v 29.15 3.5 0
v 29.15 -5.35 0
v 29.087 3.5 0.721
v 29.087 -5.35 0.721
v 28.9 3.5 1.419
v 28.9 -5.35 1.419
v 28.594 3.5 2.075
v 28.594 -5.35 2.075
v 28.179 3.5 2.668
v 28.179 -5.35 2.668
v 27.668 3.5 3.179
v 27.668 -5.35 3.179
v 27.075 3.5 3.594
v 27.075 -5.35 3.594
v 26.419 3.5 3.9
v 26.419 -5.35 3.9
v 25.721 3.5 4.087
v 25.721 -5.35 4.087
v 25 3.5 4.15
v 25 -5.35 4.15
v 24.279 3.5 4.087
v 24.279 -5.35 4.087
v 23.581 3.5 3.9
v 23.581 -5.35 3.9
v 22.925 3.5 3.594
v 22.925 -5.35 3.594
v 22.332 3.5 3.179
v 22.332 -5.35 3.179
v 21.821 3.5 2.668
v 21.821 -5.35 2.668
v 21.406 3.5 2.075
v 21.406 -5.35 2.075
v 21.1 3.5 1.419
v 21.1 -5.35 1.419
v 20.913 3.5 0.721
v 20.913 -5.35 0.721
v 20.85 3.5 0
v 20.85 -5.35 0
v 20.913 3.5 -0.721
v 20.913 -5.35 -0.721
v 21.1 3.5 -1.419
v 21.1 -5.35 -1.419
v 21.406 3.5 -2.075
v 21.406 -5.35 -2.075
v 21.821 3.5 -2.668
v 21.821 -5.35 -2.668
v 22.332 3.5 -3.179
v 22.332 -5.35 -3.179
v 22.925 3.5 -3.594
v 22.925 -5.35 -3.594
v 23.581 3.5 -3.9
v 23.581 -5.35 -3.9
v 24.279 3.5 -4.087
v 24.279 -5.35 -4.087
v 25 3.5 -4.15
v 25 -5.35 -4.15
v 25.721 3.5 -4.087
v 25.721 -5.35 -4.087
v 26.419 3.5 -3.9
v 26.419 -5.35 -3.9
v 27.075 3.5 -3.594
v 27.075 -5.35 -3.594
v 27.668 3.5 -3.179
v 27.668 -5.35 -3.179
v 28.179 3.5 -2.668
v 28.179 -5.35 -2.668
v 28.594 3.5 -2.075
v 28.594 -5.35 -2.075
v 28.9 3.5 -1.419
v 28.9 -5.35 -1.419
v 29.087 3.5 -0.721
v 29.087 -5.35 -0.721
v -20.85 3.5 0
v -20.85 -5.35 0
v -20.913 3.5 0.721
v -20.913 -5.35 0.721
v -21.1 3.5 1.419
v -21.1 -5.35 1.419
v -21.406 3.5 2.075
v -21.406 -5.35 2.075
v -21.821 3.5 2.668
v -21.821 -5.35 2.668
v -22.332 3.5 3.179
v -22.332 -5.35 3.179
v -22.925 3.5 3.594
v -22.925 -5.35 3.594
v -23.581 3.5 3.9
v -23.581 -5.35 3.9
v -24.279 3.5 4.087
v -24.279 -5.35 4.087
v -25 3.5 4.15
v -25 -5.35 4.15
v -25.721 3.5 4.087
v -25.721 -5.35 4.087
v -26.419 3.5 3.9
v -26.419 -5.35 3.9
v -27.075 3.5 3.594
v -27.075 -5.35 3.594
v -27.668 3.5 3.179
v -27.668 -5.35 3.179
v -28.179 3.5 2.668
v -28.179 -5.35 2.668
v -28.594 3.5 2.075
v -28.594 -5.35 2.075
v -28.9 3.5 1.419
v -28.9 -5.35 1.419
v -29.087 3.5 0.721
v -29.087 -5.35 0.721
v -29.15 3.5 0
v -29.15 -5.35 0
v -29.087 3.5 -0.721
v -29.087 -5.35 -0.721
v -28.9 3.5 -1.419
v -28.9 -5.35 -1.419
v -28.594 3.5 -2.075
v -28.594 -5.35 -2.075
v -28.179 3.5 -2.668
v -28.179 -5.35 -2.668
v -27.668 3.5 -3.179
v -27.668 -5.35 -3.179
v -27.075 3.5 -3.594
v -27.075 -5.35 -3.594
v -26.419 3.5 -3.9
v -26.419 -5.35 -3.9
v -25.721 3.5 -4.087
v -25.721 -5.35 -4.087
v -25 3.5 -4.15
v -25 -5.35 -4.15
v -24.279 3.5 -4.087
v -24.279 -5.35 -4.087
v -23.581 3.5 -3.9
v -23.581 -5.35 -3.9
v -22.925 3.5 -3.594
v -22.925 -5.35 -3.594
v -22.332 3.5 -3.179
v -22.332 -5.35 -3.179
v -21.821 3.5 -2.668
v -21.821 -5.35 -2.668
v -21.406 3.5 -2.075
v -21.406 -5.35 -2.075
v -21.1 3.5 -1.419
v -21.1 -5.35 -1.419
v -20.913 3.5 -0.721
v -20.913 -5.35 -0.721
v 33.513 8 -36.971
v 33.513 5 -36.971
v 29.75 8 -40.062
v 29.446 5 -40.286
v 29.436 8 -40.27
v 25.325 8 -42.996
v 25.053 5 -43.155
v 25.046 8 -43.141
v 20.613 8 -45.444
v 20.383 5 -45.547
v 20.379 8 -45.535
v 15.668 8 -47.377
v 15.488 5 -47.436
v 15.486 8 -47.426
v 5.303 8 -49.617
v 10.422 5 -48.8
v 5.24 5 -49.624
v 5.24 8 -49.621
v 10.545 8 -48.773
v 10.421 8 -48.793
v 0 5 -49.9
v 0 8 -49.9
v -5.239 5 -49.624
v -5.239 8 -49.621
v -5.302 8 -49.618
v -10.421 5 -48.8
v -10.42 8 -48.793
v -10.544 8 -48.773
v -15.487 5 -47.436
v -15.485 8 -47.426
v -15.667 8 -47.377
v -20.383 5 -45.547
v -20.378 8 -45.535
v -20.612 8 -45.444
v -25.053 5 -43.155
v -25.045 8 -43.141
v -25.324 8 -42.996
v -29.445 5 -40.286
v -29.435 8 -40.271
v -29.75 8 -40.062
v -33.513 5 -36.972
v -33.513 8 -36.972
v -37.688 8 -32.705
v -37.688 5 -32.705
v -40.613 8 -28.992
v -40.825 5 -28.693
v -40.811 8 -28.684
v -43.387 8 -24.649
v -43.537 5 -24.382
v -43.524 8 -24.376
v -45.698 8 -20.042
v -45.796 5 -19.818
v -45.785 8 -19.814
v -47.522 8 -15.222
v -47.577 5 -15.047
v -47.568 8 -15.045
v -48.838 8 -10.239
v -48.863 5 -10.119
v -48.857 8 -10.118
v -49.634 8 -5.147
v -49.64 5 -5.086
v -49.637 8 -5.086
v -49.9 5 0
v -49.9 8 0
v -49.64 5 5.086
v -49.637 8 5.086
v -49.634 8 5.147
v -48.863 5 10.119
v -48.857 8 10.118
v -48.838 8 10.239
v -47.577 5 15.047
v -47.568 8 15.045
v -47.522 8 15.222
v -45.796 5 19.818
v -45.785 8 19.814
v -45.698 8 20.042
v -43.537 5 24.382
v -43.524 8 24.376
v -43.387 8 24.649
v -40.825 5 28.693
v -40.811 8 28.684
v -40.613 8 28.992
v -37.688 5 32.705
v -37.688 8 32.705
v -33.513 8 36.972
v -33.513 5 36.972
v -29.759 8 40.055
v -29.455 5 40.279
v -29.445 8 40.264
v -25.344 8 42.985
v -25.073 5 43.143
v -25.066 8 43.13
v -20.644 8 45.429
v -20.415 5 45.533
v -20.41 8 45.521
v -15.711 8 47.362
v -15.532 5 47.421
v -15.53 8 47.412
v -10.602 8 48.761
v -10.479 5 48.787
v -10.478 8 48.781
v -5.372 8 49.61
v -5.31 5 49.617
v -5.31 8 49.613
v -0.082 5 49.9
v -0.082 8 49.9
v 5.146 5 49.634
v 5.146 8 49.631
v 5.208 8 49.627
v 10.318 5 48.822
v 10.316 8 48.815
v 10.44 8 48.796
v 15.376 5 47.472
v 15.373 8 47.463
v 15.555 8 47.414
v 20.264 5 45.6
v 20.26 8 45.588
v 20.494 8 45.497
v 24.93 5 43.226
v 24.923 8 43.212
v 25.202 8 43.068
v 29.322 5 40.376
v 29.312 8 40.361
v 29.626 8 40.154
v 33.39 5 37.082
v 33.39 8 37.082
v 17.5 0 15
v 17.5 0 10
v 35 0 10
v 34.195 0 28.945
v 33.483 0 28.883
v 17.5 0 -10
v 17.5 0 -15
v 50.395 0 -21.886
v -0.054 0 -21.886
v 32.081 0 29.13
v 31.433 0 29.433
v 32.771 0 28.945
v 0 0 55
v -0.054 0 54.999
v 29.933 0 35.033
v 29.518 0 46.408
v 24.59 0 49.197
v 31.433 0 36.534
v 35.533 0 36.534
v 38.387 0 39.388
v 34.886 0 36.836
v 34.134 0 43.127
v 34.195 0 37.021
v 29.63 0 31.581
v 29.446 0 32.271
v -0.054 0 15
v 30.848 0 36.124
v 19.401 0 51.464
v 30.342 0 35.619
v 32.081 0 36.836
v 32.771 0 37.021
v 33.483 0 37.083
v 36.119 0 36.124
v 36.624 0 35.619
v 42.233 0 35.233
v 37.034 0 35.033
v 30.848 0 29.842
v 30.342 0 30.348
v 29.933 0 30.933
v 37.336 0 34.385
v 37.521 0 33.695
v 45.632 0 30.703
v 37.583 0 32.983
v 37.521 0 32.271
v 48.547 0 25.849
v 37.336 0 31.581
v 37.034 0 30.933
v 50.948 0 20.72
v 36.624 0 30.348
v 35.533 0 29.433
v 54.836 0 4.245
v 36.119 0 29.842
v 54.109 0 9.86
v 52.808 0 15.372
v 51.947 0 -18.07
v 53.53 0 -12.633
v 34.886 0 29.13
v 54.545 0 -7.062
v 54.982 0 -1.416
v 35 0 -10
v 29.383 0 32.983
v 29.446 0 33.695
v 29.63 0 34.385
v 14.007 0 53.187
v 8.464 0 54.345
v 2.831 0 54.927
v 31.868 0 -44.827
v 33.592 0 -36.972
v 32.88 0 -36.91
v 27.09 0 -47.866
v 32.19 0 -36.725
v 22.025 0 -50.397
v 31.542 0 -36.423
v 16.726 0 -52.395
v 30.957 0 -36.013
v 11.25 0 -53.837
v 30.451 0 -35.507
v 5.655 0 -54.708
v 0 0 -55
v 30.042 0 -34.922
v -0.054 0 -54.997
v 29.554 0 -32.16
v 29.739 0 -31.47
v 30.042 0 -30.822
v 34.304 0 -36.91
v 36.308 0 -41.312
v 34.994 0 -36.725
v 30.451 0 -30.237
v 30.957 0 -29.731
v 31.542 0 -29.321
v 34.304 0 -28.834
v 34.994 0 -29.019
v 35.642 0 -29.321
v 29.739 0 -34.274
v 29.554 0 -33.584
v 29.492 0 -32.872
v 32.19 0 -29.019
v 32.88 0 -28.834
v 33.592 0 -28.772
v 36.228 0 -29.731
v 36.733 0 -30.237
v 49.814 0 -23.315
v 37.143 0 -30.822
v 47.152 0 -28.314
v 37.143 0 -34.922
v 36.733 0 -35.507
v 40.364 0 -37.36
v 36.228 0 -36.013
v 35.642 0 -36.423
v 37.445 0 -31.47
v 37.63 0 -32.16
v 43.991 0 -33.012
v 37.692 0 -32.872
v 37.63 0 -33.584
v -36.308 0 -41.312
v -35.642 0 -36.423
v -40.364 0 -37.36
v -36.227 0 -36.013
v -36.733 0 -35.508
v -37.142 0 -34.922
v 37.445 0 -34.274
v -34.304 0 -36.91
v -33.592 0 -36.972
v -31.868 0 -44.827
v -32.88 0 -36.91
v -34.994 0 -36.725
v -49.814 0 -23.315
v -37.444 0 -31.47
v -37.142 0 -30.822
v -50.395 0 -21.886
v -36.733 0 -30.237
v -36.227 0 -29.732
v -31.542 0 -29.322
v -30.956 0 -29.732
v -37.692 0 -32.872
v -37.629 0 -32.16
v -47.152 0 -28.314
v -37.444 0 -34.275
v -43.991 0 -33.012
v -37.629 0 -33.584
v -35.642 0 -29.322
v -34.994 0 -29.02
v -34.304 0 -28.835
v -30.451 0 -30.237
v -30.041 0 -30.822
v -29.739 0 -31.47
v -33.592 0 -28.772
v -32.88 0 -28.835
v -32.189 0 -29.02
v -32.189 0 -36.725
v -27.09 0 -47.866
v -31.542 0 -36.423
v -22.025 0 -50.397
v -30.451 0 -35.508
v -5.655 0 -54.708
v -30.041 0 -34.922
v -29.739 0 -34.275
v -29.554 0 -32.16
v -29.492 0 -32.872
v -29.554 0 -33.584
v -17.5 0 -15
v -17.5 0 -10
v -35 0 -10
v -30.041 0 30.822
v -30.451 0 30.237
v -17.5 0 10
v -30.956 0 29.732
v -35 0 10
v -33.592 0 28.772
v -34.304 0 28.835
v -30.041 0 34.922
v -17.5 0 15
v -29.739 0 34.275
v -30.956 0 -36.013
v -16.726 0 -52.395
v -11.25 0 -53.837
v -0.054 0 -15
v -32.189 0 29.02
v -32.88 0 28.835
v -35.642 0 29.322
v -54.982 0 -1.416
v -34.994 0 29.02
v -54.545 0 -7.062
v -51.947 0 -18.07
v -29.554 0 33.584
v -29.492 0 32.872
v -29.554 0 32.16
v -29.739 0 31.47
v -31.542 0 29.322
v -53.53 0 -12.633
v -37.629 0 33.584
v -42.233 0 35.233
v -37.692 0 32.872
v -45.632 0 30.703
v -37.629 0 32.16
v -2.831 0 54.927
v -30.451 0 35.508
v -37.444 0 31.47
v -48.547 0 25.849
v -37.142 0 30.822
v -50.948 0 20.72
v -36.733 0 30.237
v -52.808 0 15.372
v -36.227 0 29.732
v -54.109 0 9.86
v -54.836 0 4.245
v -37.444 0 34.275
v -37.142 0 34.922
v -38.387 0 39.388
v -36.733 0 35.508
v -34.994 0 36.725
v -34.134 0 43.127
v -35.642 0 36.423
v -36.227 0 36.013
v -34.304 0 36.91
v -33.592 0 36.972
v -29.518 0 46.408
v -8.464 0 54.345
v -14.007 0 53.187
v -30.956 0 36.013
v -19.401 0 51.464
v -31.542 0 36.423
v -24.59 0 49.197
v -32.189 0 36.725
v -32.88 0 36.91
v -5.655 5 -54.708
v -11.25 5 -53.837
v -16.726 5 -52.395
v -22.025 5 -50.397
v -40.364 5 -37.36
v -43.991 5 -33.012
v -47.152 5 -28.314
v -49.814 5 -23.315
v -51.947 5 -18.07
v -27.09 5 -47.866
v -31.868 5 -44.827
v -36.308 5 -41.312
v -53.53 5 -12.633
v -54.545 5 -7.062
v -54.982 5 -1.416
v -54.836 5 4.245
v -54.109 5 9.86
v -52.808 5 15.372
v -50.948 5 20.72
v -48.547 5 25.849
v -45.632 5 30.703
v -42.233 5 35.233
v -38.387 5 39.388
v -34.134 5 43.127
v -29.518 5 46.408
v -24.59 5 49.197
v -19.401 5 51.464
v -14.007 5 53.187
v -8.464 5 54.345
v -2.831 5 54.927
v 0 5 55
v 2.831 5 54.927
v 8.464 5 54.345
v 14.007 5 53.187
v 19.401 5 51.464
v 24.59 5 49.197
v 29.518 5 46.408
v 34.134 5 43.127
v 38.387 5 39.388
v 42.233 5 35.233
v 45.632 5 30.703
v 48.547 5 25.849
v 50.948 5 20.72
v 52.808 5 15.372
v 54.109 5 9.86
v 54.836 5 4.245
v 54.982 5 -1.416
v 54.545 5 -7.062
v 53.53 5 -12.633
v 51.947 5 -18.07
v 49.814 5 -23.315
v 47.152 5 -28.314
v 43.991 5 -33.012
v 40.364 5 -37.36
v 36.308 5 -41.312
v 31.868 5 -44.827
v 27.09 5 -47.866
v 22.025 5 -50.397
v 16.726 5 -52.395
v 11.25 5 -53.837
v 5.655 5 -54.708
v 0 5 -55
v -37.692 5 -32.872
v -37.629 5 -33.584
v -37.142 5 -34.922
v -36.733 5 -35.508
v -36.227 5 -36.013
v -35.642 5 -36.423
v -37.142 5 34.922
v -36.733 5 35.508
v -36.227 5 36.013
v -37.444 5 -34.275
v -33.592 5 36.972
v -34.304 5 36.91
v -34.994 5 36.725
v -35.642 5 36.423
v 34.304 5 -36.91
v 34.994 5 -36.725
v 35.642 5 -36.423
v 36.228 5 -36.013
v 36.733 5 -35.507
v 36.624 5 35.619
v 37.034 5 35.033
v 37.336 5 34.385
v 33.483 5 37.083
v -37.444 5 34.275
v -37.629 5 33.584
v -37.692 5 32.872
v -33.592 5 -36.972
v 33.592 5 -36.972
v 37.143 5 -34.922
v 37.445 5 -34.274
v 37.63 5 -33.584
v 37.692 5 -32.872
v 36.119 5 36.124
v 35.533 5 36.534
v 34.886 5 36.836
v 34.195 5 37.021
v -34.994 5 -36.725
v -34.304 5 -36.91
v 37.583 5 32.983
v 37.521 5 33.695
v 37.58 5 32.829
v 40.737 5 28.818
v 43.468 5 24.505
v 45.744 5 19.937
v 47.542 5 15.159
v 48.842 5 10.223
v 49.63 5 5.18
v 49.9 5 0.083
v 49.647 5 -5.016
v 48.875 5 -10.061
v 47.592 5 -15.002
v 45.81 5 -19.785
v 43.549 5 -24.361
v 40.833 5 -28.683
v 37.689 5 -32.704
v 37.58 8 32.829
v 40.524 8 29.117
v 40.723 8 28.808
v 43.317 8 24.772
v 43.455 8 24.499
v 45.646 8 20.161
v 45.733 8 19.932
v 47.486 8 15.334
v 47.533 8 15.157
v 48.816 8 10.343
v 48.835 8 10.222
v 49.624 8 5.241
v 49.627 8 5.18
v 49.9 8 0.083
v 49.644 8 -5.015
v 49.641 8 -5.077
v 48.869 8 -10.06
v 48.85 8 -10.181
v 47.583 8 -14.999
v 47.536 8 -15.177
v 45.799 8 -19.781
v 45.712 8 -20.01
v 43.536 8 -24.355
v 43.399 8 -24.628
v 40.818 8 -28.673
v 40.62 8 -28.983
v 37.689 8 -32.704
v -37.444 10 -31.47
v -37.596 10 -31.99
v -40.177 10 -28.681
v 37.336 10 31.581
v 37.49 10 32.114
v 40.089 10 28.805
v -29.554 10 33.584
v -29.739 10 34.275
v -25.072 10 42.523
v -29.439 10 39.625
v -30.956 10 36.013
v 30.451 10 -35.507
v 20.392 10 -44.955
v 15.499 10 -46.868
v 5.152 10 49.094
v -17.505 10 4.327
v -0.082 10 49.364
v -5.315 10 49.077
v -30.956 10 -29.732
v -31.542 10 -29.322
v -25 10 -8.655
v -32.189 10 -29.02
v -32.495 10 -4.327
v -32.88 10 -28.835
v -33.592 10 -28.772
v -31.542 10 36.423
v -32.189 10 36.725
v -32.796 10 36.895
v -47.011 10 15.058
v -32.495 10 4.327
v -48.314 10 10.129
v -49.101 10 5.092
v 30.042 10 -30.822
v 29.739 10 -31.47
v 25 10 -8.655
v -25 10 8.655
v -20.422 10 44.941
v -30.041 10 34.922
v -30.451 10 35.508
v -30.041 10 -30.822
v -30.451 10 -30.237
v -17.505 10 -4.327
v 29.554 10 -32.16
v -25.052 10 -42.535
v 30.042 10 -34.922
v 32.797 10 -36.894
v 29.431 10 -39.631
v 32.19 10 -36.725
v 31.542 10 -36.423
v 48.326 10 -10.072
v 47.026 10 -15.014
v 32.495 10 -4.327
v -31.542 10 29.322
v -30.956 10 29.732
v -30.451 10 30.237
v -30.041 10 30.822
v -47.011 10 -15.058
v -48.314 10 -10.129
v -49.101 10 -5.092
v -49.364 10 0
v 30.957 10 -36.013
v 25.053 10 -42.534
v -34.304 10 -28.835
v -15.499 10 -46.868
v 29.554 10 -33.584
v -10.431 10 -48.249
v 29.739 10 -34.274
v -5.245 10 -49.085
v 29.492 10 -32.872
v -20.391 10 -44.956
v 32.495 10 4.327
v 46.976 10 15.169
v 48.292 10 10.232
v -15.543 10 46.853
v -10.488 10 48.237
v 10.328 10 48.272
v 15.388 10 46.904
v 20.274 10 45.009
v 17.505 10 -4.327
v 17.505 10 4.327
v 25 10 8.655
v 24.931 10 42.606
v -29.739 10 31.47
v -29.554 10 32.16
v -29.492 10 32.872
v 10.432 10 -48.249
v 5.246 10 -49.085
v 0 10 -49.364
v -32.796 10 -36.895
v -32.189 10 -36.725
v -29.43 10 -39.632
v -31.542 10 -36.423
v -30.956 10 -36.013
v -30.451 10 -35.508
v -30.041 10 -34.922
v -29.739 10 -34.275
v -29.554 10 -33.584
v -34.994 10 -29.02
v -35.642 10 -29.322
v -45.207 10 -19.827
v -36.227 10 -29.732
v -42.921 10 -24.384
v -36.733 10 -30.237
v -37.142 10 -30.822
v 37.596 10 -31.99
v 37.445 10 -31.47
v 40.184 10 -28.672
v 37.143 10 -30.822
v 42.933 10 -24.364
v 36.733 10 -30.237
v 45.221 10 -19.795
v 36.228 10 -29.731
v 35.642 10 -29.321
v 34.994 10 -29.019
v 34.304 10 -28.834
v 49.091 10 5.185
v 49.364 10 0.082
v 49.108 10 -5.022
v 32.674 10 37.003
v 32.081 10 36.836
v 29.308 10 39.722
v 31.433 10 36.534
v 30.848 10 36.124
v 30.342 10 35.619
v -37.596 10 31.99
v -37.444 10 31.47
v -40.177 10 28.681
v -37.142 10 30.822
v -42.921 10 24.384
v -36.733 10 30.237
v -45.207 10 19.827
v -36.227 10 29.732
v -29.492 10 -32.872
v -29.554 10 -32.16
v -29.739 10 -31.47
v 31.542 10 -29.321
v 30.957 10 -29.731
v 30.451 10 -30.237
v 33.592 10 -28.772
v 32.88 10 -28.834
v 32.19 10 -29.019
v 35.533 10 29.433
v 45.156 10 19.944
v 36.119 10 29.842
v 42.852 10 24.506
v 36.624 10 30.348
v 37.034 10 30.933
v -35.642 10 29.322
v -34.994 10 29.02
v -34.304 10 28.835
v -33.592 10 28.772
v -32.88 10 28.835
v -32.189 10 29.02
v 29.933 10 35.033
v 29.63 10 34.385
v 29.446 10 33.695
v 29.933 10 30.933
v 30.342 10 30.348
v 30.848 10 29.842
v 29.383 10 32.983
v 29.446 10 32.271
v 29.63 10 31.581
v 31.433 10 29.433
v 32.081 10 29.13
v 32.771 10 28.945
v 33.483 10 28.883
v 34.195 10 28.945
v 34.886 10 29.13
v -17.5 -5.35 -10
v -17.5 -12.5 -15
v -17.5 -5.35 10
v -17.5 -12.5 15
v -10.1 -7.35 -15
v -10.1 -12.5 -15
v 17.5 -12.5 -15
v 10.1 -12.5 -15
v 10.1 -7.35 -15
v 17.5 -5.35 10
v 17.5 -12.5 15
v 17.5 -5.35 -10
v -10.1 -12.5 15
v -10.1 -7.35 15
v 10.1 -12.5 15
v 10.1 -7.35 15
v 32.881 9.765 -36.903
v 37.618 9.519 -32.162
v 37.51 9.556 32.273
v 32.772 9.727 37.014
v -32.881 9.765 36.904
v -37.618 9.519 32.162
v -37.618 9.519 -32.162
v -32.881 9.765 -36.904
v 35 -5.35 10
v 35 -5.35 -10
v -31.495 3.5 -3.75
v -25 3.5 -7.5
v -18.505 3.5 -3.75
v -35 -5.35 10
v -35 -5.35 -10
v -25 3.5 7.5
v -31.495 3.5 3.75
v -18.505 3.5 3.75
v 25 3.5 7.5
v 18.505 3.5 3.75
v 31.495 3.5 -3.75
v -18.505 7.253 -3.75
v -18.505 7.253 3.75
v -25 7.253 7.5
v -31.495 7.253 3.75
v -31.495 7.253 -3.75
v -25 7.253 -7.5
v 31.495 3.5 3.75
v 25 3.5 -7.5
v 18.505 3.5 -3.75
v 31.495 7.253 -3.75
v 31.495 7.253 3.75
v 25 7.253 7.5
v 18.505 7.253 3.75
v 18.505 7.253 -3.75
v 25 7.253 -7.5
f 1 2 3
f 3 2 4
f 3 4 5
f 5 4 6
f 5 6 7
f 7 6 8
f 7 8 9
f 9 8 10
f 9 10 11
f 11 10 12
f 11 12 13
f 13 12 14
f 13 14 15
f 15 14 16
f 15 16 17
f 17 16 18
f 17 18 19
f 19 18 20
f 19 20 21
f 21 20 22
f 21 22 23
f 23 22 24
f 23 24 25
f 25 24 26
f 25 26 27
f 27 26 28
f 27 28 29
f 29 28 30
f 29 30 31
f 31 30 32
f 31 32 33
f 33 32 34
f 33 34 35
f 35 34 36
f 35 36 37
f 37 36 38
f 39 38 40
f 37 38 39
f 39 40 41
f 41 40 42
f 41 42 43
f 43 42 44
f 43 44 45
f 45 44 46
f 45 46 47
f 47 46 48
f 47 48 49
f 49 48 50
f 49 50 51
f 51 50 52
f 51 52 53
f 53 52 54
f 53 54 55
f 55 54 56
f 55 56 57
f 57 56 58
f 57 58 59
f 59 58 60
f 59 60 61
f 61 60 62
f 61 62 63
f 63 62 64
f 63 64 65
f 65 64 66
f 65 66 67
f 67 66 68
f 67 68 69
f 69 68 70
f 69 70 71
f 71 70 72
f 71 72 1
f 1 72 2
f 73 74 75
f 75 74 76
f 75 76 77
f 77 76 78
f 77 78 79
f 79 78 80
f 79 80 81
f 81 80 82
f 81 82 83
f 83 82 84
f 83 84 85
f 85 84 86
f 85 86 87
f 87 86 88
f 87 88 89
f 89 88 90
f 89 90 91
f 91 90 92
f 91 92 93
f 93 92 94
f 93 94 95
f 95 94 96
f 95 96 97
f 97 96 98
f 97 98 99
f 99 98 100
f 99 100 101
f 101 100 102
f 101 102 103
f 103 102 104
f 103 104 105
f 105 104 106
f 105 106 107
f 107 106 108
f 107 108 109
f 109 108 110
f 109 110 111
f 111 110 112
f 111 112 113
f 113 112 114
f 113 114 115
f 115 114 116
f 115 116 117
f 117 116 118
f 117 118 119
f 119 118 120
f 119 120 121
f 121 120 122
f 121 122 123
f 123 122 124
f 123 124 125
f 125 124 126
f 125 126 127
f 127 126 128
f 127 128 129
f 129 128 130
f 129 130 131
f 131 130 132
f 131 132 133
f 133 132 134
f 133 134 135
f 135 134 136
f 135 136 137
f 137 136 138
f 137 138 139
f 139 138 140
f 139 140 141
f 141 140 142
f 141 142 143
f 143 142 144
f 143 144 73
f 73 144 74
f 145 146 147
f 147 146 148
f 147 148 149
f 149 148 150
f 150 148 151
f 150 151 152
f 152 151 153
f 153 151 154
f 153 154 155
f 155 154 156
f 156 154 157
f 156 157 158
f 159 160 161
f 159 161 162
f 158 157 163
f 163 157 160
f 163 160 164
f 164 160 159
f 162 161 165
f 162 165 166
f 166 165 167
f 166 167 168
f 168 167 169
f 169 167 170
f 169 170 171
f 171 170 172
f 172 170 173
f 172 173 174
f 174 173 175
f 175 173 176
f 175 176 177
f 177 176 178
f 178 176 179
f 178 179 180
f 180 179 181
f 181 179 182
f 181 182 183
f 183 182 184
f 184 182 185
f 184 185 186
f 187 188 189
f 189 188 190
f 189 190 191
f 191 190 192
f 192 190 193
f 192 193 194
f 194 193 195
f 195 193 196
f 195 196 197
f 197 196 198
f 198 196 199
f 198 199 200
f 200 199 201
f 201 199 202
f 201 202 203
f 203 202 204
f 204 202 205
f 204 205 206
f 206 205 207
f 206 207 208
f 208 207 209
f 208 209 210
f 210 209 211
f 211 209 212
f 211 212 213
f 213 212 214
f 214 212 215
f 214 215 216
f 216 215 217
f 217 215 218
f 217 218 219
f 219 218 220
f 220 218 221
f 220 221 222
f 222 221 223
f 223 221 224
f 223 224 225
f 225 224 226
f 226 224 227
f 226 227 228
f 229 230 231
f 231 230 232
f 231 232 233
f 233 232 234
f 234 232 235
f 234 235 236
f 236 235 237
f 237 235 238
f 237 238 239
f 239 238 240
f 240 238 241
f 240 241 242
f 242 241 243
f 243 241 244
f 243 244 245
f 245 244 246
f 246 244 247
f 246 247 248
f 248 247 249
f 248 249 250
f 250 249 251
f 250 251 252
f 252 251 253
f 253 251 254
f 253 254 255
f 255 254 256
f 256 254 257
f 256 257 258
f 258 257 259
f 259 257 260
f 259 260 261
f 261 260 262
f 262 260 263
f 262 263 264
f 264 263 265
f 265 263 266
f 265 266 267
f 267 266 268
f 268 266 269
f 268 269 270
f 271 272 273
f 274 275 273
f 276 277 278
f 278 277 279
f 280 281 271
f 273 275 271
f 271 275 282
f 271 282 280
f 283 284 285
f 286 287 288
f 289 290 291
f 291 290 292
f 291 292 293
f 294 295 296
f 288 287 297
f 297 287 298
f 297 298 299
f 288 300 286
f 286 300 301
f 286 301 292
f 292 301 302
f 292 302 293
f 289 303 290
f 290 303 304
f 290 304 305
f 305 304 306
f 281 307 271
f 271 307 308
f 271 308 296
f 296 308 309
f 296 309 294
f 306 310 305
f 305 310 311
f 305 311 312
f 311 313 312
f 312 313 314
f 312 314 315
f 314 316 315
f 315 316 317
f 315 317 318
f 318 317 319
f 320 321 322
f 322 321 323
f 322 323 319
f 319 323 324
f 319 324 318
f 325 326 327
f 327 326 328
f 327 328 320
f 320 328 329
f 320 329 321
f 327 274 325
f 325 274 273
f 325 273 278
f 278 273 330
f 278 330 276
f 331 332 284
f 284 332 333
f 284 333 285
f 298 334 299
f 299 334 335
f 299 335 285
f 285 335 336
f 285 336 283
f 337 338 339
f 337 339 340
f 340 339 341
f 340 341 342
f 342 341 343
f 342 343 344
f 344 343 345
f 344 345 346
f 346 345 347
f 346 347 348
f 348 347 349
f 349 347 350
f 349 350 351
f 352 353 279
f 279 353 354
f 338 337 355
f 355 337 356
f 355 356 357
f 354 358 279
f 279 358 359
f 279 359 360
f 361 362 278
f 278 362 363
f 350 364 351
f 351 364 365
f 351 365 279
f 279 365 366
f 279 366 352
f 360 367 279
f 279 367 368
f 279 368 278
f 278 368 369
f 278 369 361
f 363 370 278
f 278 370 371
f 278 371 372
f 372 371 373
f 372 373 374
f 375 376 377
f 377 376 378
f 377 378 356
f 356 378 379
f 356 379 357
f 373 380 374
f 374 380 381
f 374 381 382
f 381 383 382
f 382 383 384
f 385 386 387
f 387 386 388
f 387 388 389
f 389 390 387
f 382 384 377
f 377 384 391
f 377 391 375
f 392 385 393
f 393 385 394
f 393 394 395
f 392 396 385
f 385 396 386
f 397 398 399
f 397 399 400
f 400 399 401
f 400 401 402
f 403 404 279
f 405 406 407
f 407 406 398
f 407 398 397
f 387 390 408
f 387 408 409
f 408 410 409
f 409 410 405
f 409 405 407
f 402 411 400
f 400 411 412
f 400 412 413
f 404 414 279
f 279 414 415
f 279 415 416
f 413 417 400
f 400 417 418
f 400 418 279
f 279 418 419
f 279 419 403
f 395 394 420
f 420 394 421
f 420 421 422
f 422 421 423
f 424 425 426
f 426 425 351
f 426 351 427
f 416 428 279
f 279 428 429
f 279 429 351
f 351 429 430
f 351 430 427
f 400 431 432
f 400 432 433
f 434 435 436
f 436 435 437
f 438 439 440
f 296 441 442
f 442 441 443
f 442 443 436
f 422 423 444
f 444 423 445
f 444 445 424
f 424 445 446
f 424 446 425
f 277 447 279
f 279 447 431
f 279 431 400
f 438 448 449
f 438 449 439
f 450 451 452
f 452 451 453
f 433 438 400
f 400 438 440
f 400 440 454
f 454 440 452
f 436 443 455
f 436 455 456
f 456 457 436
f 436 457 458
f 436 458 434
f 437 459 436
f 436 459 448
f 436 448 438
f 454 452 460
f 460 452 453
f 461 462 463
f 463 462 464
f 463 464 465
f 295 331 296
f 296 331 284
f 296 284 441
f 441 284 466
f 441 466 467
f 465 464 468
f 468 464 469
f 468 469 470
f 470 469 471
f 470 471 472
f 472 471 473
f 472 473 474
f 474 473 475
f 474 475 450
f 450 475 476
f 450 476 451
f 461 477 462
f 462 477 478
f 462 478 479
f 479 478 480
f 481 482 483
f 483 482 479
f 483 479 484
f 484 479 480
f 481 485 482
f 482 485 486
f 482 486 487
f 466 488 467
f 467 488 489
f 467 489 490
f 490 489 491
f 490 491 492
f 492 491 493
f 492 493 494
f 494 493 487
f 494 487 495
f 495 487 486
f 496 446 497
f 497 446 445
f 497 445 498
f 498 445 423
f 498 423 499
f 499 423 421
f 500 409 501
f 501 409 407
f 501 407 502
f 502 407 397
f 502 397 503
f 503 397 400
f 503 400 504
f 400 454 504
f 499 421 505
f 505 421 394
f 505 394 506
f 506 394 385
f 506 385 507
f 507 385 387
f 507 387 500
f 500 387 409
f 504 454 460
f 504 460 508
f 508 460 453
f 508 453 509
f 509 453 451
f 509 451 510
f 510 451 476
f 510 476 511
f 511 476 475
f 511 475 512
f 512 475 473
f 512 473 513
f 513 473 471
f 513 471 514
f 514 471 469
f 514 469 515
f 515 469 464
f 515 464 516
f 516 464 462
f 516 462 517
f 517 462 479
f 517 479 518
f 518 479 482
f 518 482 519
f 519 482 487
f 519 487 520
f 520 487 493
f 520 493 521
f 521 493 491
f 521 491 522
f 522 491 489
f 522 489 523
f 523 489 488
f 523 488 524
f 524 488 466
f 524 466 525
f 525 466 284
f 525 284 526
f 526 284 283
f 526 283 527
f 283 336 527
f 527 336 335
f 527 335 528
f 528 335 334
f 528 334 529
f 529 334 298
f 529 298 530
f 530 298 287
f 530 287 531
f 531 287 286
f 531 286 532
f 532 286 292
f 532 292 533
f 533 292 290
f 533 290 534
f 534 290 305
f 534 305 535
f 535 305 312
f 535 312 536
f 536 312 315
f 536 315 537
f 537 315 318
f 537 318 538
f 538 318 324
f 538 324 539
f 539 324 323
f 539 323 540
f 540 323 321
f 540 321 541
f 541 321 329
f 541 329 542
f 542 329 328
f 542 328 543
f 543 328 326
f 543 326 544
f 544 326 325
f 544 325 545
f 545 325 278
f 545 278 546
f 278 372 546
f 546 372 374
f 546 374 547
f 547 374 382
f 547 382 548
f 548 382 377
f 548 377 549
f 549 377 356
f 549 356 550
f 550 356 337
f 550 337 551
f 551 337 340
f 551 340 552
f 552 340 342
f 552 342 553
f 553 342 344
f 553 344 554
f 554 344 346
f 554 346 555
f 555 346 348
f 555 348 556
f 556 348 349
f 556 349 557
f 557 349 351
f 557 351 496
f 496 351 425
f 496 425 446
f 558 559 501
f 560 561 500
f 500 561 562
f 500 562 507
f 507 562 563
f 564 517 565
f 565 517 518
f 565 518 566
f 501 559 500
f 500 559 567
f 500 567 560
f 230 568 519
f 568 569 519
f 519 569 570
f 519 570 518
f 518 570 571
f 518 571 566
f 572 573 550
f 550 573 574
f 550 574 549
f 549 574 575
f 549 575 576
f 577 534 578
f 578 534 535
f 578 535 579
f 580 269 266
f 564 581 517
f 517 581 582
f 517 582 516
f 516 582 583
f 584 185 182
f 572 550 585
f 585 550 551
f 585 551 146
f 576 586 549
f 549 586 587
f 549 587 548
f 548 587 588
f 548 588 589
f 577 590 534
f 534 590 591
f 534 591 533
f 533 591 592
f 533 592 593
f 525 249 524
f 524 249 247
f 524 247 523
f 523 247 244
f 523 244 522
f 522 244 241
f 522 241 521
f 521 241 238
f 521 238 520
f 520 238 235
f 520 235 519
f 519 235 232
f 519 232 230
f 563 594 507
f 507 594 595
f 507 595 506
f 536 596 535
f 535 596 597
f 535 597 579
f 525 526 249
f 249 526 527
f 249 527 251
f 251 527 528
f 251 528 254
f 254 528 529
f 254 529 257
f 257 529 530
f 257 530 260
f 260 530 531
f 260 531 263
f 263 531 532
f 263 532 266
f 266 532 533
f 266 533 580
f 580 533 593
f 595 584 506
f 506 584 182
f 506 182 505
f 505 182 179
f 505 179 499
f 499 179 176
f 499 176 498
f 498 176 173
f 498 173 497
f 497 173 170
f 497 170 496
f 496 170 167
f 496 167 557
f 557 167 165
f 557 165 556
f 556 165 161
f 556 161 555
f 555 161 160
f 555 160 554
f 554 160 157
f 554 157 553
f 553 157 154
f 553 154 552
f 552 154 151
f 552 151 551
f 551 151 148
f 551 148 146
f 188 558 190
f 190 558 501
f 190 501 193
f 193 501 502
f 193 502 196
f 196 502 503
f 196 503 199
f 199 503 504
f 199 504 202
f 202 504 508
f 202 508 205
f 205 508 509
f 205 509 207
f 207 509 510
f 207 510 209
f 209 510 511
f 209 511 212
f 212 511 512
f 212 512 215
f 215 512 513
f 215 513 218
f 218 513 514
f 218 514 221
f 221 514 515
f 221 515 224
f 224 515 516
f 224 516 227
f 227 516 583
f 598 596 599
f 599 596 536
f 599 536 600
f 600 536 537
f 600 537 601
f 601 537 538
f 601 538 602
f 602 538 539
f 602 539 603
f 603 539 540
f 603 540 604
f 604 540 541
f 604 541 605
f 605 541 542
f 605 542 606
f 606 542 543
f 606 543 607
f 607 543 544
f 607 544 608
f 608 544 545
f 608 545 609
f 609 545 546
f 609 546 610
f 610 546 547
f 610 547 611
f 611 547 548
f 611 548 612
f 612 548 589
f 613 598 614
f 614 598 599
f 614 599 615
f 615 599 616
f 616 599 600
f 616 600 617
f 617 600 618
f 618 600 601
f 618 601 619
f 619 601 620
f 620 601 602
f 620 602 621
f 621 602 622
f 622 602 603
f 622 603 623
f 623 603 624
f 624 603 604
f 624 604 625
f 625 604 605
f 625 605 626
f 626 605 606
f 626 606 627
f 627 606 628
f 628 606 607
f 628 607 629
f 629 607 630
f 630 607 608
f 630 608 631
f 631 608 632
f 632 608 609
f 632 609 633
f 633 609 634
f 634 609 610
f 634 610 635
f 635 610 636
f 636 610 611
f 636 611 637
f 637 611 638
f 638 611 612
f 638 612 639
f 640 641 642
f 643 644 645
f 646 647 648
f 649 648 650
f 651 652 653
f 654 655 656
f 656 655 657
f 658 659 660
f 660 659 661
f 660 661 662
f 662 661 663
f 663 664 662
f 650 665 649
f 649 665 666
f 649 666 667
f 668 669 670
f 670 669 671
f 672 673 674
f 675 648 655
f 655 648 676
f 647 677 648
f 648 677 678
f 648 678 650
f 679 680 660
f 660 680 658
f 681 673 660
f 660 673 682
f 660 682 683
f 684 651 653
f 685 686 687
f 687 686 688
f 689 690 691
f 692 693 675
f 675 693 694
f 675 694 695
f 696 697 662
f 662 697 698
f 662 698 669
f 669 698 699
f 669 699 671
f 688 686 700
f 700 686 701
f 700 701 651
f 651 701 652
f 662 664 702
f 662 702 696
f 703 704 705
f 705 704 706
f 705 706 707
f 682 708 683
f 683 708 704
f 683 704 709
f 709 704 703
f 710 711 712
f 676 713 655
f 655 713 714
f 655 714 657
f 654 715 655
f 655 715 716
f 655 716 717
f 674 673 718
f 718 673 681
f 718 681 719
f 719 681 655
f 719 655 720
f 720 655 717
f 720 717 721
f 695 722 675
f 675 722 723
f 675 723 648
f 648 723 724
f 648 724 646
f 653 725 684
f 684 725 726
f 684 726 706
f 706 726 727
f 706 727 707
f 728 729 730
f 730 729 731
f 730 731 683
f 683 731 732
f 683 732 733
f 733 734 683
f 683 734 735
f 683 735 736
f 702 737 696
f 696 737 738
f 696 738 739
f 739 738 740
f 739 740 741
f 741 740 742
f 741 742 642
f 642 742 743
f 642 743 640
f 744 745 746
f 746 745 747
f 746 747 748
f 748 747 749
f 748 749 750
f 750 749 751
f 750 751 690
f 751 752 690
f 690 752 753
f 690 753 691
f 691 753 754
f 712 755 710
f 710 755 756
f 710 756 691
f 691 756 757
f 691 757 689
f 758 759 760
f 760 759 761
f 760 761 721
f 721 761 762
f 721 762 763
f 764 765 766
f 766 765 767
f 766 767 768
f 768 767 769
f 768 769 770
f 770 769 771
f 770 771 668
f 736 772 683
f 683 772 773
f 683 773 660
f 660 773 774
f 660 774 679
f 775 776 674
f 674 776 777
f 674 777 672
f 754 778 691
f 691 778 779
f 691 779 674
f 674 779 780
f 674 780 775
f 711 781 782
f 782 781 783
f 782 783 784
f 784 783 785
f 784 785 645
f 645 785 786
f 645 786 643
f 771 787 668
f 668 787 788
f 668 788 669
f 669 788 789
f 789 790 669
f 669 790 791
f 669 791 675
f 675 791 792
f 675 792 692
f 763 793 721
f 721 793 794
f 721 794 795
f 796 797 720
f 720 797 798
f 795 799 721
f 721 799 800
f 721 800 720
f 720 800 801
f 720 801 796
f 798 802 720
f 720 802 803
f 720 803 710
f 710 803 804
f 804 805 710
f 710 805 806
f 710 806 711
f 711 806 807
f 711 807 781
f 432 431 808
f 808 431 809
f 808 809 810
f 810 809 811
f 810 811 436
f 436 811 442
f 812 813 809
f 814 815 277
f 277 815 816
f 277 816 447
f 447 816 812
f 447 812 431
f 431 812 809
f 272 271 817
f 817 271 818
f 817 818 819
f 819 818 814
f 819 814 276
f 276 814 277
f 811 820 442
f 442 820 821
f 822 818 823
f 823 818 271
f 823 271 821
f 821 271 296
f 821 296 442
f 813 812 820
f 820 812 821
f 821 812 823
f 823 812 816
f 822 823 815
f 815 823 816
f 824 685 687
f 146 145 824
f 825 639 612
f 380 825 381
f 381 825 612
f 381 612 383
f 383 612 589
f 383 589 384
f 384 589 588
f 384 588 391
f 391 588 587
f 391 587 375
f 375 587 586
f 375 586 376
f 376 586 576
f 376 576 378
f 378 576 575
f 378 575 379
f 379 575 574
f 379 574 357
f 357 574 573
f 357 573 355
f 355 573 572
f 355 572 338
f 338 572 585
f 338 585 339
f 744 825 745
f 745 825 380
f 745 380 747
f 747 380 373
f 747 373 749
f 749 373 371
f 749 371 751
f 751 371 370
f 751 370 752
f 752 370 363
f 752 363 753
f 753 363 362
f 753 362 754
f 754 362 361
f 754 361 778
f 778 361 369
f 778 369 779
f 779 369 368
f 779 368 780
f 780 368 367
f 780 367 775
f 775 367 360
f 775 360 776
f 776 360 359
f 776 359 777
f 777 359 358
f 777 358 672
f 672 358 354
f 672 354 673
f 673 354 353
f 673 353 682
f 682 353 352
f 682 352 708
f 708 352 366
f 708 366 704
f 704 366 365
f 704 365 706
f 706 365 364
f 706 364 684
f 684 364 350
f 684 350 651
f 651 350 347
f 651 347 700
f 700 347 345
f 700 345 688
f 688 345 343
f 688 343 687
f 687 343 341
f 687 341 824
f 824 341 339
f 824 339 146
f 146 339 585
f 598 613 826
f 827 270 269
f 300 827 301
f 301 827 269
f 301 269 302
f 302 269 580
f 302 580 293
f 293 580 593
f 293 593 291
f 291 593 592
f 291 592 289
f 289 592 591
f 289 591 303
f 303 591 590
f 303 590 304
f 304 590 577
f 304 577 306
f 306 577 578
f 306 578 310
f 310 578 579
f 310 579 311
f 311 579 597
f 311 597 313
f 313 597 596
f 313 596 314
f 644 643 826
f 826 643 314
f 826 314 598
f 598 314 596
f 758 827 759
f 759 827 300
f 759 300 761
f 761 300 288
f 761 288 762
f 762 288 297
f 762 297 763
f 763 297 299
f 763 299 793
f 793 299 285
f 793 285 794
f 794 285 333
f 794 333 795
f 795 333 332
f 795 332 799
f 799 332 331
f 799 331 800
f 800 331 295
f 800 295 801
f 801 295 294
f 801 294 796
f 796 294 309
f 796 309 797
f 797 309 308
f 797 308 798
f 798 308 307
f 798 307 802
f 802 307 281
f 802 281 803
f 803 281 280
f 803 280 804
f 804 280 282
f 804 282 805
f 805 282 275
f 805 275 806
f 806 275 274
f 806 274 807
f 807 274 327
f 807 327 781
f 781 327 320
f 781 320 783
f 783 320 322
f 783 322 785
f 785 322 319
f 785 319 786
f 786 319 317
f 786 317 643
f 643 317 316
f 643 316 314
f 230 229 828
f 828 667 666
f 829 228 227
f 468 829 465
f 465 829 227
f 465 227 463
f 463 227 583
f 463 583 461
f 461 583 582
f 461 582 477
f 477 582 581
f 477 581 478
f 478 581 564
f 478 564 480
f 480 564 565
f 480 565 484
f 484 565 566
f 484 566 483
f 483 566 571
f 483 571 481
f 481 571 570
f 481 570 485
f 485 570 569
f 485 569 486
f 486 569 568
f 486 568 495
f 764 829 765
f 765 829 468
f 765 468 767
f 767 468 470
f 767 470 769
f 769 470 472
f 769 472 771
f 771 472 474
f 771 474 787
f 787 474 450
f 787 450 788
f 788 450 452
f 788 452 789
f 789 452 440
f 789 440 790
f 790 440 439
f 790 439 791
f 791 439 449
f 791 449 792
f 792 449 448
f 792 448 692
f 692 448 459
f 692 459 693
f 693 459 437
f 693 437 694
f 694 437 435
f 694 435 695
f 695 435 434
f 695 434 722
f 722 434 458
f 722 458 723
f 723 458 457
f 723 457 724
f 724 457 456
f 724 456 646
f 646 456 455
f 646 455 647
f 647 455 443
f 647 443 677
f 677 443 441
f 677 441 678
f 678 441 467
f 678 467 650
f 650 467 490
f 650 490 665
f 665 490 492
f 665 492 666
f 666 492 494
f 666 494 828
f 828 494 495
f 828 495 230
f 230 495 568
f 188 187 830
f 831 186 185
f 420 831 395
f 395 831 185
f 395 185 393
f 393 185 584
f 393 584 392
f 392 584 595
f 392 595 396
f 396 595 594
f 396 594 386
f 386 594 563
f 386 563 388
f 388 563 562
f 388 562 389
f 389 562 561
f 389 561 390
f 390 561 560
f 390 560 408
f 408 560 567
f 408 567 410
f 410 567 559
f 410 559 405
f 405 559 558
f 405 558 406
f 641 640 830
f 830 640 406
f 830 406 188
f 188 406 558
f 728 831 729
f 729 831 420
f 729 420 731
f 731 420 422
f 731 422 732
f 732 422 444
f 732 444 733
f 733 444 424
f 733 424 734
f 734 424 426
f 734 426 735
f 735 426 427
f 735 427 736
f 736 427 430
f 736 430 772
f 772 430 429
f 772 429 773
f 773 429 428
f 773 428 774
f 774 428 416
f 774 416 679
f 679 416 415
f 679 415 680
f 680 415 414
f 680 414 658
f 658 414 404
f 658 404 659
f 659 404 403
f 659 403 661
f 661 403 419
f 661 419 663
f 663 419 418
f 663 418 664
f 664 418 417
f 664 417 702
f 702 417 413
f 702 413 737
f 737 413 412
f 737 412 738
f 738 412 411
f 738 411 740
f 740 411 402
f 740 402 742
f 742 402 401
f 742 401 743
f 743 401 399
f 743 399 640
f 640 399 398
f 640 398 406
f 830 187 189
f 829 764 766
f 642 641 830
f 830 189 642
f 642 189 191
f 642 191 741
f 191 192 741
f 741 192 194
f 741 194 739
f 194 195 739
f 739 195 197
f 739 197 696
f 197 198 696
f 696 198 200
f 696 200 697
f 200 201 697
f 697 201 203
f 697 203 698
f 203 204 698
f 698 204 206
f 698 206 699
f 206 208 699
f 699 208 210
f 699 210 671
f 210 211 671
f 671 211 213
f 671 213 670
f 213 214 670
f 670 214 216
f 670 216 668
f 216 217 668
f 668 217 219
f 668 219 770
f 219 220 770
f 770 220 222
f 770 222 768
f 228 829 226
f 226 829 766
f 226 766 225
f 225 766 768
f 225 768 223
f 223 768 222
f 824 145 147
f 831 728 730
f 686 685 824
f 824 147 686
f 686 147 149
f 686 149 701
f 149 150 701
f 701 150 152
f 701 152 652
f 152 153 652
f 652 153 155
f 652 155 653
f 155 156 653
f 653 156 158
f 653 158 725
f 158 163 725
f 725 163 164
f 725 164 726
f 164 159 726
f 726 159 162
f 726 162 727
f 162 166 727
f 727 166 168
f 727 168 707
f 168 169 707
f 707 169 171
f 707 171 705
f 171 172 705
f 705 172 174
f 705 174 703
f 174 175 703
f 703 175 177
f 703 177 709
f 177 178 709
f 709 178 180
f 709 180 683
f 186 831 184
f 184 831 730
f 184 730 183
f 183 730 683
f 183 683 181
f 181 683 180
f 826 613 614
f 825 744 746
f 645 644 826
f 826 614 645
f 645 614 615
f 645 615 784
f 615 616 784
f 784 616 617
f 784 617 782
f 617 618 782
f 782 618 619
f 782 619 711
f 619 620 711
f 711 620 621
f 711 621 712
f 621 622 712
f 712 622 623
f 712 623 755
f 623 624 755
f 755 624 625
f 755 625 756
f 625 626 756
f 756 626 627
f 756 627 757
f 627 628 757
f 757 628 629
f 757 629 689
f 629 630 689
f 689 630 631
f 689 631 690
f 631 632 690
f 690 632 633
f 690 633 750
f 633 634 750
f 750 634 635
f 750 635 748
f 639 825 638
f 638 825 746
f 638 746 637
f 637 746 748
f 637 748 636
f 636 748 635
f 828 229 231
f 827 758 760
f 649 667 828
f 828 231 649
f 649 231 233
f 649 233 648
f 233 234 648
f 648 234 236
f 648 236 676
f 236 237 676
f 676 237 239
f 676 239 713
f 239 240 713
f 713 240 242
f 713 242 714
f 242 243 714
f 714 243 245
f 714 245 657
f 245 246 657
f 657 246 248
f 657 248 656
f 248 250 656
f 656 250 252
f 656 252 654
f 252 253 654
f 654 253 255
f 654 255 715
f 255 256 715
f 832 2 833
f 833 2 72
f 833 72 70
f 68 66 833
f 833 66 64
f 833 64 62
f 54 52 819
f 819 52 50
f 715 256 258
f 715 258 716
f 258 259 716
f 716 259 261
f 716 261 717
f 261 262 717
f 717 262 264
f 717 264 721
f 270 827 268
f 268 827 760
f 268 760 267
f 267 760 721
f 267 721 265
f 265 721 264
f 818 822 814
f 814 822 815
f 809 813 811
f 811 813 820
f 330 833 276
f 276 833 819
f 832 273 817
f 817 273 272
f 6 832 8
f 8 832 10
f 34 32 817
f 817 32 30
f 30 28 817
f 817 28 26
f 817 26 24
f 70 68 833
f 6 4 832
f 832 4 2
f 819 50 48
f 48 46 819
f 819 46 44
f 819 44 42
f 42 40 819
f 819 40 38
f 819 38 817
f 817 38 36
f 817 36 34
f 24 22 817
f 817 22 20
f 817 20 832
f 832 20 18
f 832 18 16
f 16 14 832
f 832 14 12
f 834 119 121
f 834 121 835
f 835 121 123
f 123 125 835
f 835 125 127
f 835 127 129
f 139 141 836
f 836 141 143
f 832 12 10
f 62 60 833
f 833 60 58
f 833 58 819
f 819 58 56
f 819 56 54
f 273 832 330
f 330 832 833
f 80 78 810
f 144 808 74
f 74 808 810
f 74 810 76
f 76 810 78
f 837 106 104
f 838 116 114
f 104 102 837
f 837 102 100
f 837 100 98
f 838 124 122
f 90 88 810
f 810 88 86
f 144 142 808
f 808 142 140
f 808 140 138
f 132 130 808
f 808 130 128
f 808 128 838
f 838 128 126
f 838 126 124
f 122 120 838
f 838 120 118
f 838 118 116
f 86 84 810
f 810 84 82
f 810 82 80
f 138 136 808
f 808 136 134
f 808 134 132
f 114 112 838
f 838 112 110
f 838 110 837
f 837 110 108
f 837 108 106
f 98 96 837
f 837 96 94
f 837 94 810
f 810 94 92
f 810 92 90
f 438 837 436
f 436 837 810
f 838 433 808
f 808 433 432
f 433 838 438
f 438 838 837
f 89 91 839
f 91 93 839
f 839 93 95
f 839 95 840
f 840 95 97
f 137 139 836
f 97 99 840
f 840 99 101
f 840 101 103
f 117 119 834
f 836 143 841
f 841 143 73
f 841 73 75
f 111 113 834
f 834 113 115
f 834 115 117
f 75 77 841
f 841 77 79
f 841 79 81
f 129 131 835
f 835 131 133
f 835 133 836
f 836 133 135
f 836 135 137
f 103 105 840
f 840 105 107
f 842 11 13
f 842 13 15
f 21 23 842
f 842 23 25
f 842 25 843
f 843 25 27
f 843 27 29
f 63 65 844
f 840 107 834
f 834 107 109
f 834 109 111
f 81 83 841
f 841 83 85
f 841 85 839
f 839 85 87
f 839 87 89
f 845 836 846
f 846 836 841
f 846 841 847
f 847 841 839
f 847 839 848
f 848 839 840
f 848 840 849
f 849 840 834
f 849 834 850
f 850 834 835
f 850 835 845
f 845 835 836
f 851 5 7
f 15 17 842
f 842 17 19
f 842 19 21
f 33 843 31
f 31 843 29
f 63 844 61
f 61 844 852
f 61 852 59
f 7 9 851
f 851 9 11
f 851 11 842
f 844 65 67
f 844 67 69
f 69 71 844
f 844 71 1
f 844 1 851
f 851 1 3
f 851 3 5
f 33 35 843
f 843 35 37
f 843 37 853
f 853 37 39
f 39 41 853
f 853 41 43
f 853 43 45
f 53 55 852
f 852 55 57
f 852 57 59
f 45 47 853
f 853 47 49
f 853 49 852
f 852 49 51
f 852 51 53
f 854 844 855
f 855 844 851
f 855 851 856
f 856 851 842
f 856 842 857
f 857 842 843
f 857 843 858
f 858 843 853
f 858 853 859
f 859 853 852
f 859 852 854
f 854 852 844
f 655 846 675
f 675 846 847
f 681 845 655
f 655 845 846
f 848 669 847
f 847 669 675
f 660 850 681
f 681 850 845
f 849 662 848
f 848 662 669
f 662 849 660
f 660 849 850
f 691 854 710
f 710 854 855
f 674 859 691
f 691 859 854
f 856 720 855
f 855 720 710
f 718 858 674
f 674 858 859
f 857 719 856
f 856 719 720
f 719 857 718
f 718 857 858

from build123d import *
from OCP.BRepFilletAPI import BRepFilletAPI_MakeChamfer

# Parameters (mm, degrees)
SKETCH_1_R          = 55
EXTRUDE_1_DEPTH     = 5
SKETCH_2_R          = 49.9
EXTRUDE_2_DEPTH     = 5
SKETCH_3_W          = 35
SKETCH_3_H          = 30
EXTRUDE_3_DEPTH     = 25
SKETCH_4_W          = 20.2
SKETCH_4_H          = 10.3
CUT_EXTRUDE_1_DEPTH = 93.466210045
SKETCH_5_R          = 4.1
CUT_EXTRUDE_2_DEPTH = 82.700673192
CHAMFER1_SIZE       = 2
CHAMFER1_SIZE2      = 0.535898385
SKETCH2_W           = 35
SKETCH2_H           = 30
CUT_EXTRUDE1_DEPTH  = 12.5
BOSS_EXTRUDE1_START = -2
SKETCH4_W           = 70
SKETCH4_H           = 20
BOSS_EXTRUDE1_DEPTH = 5.35
SKETCH5_R           = 4.15
CUT_EXTRUDE2_DEPTH  = 80.281917882
CUT_EXTRUDE3_DEPTH  = 6.5
CHAMFER2_SIZE       = 1
CHAMFER2_SIZE2      = 2.747477419


with BuildPart() as part:
    # Эскиз1 → Бобышка-Вытянуть1 (new body)
    with BuildSketch(Plane(origin=(0, 0, 0), x_dir=(1, 0, 0), z_dir=(0, 1, 0))):
        with Locations(Location((0, 0, 0), (0, 0, 270))):
            Circle(SKETCH_1_R)
    extrude(amount=EXTRUDE_1_DEPTH)

    # Эскиз2 → Бобышка-Вытянуть2 (add)
    with BuildSketch(Plane(origin=(0, 5, 0), x_dir=(1, 0, 0), z_dir=(0, 1, 0))):
        with Locations(Location((0, 0, 0), (0, 0, 270))):
            Circle(SKETCH_2_R)
    extrude(amount=EXTRUDE_2_DEPTH)

    # Эскиз3 → Бобышка-Вытянуть3 (add)
    with BuildSketch(Plane.XZ):
        Rectangle(SKETCH_3_W, SKETCH_3_H)
    extrude(amount=EXTRUDE_3_DEPTH)

    # Эскиз4 → Вырез-Вытянуть1 (cut, through all)
    with BuildSketch(Plane.XY.offset(15)):
        with Locations((0, -12.5)):
            Rectangle(SKETCH_4_W, SKETCH_4_H)
    extrude(amount=-CUT_EXTRUDE_1_DEPTH, mode=Mode.SUBTRACT)

    # Эскиз5 → Вырез-Вытянуть2 (cut, through all)
    with BuildSketch(Plane.XZ):
        with Locations(Location((33.592198598, -32.871936263, 0), (0, 0, 270))):
            Circle(SKETCH_5_R)
        with Locations(Location((-33.591727056, -32.872418125, 0), (0, 0, 270))):
            Circle(SKETCH_5_R)
        with Locations(Location((-33.591727056, 32.872418125, 0), (0, 0, 270))):
            Circle(SKETCH_5_R)
        with Locations(Location((33.483215177, 32.983215177, 0), (0, 0, 270))):
            Circle(SKETCH_5_R)
    extrude(amount=-CUT_EXTRUDE_2_DEPTH, mode=Mode.SUBTRACT)

    # Chamfer1: one chamfer whose edges measure the first distance from different faces: ONE call of the kernel's chamfer builder (chamfer() names one face for all edges)
    chamfer1_edges_1 = [part.edges().sort_by_distance(p)[0] for p in [
        (0.000357897, 10, -49.899999999),
    ]]
    chamfer1_side_1 = [part.faces().sort_by_distance(p)[0] for p in [
        (0.000357897, 7.5, -49.899999999),
    ]]
    chamfer1_edges_2 = [part.edges().sort_by_distance(p)[0] for p in [
        (-49.9, 10, 0),
    ]]
    chamfer1_side_2 = [part.faces().sort_by_distance(p)[0] for p in [
        (-49.9, 7.5, 0),
    ]]
    chamfer1_edges_3 = [part.edges().sort_by_distance(p)[0] for p in [
        (-0.08242255, 10, 49.899931929),
    ]]
    chamfer1_side_3 = [part.faces().sort_by_distance(p)[0] for p in [
        (-0.08242255, 7.5, 49.899931929),
    ]]
    chamfer1_edges_4 = [part.edges().sort_by_distance(p)[0] for p in [
        (49.899931657, 10, 0.082587101),
    ]]
    chamfer1_side_4 = [part.faces().sort_by_distance(p)[0] for p in [
        (49.899931657, 7.5, 0.082587101),
    ]]
    chamfer1 = BRepFilletAPI_MakeChamfer(part.part.solid().wrapped)
    for e in chamfer1_edges_1:
        chamfer1.Add(CHAMFER1_SIZE, CHAMFER1_SIZE2, e.wrapped, chamfer1_side_1[0].wrapped)  # the first distance lies on this face
    for e in chamfer1_edges_2:
        chamfer1.Add(CHAMFER1_SIZE, CHAMFER1_SIZE2, e.wrapped, chamfer1_side_2[0].wrapped)  # the first distance lies on this face
    for e in chamfer1_edges_3:
        chamfer1.Add(CHAMFER1_SIZE, CHAMFER1_SIZE2, e.wrapped, chamfer1_side_3[0].wrapped)  # the first distance lies on this face
    for e in chamfer1_edges_4:
        chamfer1.Add(CHAMFER1_SIZE, CHAMFER1_SIZE2, e.wrapped, chamfer1_side_4[0].wrapped)  # the first distance lies on this face
    add(Compound.cast(chamfer1.Shape()), mode=Mode.REPLACE)

    # Sketch2 → Cut-Extrude1 (cut)
    with BuildSketch(Plane.XZ.offset(25)):
        Rectangle(SKETCH2_W, SKETCH2_H)
    extrude(amount=-CUT_EXTRUDE1_DEPTH, mode=Mode.SUBTRACT)

    # Sketch4 → Boss-Extrude1 (add)
    with BuildSketch(Plane.XZ.offset(7.35).offset(BOSS_EXTRUDE1_START)):
        Rectangle(SKETCH4_W, SKETCH4_H)
    extrude(amount=-BOSS_EXTRUDE1_DEPTH)

    # Sketch5 → Cut-Extrude2 (cut, through all)
    with BuildSketch(Plane.XZ.offset(5.35)):
        with Locations((25, 0)):
            Circle(SKETCH5_R)
        with Locations((-25, 0)):
            Circle(SKETCH5_R)
    extrude(amount=-CUT_EXTRUDE2_DEPTH, mode=Mode.SUBTRACT)

    # Sketch6 → Cut-Extrude3 (cut)
    with BuildSketch(Plane(origin=(0, 10, 0), x_dir=(1, 0, 0), z_dir=(0, 1, 0))):
        Polygon((-18.504809472, 3.75), (-25, 7.5), (-31.495190528, 3.75), (-31.495190528, -3.75), (-25, -7.5), (-18.504809472, -3.75), align=None)
        Polygon((31.495190528, 3.75), (25, 7.5), (18.504809472, 3.75), (18.504809472, -3.75), (25, -7.5), (31.495190528, -3.75), align=None)
    extrude(amount=-CUT_EXTRUDE3_DEPTH, mode=Mode.SUBTRACT)

    # Chamfer2
    chamfer2_edges = [part.edges().sort_by_distance(p)[0] for p in [
        (-18.504809472, 10, 0),
        (-21.752404736, 10, -5.625),
        (-28.247595264, 10, -5.625),
        (-31.495190528, 10, 0),
        (-28.247595264, 10, 5.625),
        (-21.752404736, 10, 5.625),
        (31.495190528, 10, 0),
        (28.247595264, 10, -5.625),
        (21.752404736, 10, -5.625),
        (18.504809472, 10, 0),
        (21.752404736, 10, 5.625),
        (28.247595264, 10, 5.625),
    ]]
    chamfer2_side = [part.faces().sort_by_distance(p)[0] for p in [
        (0.000665728, 10, -0.000672626),
    ]]
    chamfer(chamfer2_edges, length=CHAMFER2_SIZE, length2=CHAMFER2_SIZE2, reference=chamfer2_side[0])


solid = part.part
